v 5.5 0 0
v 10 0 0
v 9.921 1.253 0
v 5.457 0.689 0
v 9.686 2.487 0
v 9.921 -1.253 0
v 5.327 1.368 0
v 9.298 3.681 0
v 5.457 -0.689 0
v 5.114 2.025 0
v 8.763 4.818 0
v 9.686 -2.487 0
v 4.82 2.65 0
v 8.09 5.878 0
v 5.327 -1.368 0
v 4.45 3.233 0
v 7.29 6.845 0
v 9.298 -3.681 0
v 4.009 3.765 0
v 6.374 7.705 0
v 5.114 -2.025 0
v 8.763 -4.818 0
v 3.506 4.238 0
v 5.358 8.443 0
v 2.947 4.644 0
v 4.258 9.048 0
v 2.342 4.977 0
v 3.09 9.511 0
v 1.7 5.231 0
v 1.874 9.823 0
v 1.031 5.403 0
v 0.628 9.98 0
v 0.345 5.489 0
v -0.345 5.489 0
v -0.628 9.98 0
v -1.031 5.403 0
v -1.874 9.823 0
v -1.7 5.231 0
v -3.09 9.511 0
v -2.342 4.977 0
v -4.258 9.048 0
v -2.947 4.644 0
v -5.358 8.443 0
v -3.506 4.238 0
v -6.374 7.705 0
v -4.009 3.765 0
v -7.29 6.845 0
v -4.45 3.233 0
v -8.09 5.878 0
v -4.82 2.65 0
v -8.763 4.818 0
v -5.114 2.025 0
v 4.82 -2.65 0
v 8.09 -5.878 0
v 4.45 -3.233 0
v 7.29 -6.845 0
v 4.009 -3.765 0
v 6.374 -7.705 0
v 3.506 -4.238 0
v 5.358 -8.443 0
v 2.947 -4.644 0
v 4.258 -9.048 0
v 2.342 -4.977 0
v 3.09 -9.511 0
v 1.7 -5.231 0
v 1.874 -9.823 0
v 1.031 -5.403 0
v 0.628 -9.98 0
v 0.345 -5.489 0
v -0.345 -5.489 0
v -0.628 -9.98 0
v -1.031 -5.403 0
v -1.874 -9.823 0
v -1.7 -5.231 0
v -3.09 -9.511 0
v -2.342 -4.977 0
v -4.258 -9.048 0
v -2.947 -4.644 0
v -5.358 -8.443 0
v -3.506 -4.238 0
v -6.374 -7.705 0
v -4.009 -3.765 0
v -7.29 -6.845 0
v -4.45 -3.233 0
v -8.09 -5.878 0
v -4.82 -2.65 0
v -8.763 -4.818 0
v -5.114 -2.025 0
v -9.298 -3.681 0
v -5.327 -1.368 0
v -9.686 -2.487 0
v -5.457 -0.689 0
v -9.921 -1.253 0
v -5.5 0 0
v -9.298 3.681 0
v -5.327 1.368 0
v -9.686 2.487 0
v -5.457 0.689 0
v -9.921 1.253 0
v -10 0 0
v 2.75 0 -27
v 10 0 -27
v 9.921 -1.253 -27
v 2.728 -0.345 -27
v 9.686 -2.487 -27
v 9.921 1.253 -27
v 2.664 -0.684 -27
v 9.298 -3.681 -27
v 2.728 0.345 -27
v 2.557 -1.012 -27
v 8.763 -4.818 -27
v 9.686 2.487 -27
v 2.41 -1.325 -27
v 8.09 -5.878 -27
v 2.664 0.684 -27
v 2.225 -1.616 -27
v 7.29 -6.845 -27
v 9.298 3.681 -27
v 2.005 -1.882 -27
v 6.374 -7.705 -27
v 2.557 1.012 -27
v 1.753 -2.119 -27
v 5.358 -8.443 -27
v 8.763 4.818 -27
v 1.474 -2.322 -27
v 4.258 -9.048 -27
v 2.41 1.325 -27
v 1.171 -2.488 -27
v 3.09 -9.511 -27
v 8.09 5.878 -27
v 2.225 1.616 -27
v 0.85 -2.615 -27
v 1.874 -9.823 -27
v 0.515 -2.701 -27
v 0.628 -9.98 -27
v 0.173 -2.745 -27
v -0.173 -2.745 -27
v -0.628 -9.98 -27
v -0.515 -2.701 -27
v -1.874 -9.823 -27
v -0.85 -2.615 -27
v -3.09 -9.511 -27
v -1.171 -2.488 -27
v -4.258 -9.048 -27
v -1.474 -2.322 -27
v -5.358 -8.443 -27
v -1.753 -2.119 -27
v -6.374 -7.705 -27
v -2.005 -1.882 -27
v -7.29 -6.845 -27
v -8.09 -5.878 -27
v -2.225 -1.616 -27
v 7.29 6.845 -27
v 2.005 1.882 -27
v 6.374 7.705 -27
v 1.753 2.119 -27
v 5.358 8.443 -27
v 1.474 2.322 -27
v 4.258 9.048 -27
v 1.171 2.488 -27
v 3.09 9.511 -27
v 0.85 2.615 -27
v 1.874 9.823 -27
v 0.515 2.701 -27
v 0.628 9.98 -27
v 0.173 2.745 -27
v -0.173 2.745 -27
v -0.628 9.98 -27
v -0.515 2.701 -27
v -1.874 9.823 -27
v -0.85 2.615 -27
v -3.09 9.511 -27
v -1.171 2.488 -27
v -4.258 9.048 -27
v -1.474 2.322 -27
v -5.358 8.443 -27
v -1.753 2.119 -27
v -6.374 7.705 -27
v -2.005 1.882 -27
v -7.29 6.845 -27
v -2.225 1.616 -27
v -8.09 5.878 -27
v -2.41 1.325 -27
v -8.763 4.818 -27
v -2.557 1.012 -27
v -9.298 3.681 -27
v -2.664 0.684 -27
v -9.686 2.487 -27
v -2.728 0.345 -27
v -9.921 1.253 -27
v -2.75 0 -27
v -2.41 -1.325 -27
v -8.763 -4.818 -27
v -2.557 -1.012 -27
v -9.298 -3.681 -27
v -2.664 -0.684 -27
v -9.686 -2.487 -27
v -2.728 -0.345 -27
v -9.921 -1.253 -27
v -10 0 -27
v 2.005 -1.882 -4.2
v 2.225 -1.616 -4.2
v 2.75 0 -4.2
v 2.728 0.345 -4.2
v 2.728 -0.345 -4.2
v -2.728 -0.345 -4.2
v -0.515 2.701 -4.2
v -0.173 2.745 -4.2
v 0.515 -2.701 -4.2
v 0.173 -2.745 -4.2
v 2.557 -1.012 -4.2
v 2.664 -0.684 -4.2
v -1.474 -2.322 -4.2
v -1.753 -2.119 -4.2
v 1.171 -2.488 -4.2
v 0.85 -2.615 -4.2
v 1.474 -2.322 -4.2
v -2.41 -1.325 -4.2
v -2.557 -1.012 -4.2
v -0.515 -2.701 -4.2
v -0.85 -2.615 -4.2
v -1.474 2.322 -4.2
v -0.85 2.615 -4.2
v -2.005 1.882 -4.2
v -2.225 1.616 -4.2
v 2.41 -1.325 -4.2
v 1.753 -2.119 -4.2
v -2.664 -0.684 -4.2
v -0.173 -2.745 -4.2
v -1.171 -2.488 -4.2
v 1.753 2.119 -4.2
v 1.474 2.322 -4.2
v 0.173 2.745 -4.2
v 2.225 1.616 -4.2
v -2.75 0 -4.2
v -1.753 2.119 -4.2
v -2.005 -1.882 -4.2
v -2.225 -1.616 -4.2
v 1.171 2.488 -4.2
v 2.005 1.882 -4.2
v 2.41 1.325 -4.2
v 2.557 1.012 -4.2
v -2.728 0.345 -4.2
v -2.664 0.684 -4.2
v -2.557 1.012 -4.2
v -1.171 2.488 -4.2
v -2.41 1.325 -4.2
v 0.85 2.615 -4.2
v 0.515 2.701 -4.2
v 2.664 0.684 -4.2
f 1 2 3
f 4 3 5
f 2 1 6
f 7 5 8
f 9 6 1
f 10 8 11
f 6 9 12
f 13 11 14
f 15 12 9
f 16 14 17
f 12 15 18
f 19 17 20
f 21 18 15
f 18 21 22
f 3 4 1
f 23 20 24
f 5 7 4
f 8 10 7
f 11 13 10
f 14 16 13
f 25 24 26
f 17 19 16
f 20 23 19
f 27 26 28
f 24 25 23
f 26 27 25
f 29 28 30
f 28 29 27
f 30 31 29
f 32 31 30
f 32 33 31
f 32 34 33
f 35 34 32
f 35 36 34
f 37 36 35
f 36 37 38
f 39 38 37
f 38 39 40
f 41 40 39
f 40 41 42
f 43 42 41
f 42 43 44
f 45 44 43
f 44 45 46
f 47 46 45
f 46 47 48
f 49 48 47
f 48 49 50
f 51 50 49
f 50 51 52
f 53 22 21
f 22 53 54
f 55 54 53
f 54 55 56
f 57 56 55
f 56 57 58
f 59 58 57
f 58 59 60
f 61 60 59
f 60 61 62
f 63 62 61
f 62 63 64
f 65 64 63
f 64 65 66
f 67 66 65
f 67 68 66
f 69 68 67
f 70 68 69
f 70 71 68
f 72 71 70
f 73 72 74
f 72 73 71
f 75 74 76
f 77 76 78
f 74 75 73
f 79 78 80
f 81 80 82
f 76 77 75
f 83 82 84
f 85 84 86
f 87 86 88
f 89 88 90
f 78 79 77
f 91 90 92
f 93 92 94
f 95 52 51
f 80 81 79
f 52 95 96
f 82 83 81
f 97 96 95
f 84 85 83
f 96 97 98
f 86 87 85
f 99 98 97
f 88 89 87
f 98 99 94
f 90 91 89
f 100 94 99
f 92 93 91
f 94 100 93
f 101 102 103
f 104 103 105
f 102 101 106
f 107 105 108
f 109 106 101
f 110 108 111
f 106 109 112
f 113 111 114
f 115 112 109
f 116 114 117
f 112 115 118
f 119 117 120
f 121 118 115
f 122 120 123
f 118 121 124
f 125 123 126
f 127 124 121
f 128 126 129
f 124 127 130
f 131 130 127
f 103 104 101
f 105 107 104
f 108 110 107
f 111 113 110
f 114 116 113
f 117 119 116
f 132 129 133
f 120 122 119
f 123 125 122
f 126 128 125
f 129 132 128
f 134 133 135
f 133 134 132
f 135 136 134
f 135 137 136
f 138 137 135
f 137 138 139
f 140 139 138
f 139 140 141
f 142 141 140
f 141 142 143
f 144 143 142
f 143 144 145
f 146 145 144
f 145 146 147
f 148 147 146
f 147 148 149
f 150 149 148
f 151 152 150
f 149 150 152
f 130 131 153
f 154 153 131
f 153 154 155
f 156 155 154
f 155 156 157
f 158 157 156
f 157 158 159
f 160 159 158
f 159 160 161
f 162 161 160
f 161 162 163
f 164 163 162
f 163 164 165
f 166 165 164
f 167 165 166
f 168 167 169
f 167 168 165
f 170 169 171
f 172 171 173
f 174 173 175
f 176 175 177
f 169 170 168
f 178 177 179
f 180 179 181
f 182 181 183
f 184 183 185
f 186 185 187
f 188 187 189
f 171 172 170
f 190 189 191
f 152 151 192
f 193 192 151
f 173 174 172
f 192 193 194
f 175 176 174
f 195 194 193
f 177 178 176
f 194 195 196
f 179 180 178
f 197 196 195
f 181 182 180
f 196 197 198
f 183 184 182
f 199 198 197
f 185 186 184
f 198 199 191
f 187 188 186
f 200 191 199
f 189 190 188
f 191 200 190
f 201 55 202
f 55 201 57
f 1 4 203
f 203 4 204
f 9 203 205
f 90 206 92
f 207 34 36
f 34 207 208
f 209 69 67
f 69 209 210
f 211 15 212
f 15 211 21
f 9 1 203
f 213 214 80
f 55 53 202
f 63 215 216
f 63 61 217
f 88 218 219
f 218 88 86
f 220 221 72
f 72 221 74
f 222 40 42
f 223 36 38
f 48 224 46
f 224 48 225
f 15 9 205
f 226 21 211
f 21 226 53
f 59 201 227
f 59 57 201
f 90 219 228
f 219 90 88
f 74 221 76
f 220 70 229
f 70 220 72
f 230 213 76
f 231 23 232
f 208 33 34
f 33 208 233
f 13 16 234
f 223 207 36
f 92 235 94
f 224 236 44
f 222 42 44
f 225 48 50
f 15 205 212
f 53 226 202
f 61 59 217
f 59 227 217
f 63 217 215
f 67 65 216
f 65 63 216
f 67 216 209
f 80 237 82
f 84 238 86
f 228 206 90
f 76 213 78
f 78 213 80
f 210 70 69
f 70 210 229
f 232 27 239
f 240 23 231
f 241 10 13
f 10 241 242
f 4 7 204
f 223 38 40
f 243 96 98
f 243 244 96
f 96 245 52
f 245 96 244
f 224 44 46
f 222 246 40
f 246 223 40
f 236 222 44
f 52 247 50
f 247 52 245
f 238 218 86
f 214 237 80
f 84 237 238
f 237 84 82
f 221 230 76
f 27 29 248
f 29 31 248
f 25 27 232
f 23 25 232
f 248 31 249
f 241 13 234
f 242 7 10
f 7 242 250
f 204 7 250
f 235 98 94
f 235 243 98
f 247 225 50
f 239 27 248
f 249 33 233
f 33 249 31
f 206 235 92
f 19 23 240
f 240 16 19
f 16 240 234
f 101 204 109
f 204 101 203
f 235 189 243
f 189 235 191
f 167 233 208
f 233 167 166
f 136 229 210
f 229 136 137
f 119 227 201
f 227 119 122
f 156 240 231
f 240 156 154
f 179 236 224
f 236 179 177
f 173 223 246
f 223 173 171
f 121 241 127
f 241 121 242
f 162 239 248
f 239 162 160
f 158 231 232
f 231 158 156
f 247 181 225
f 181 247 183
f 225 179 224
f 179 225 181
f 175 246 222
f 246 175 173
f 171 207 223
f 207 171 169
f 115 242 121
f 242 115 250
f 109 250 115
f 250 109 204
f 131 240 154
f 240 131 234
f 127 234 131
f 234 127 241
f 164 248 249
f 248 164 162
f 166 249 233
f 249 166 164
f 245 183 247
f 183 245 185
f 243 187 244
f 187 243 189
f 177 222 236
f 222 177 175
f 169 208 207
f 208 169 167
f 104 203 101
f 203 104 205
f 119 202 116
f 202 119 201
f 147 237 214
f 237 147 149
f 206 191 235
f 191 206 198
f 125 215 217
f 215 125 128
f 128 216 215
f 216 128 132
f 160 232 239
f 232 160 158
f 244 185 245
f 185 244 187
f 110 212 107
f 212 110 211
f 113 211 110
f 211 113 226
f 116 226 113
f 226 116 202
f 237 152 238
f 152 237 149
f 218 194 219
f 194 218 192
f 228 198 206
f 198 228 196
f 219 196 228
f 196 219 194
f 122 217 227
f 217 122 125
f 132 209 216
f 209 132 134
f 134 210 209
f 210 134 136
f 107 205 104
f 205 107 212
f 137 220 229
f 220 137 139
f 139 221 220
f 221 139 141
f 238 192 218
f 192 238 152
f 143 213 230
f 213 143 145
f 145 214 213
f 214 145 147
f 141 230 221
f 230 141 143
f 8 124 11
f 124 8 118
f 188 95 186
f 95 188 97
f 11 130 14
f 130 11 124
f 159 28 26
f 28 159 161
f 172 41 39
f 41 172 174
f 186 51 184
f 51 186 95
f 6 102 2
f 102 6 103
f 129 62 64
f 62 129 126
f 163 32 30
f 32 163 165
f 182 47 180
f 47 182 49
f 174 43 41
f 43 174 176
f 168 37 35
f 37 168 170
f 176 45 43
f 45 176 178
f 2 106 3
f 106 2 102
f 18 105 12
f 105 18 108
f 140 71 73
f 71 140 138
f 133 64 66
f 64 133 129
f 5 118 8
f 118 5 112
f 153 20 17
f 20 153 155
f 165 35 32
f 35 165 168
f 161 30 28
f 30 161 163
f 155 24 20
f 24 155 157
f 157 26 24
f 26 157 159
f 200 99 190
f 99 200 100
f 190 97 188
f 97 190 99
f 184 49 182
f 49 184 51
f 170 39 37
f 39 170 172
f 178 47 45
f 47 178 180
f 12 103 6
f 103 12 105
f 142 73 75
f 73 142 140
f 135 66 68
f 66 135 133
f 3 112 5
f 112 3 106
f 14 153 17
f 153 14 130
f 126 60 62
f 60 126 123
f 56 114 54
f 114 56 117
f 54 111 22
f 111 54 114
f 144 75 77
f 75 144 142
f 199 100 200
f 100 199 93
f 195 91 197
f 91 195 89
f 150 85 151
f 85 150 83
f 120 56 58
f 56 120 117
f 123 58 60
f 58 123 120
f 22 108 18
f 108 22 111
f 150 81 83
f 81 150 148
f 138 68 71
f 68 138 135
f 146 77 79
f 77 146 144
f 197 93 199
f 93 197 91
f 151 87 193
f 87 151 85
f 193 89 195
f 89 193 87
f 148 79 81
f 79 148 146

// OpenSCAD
$fn = 50;


difference() {
	union() {
		translate(v = [0, 0, -27.0000000000]) {
			cylinder(h = 27, r = 10.0000000000);
		}
		cylinder(h = 0, r = 13.0000000000);
	}
	union() {
		translate(v = [0, 0, 0]) {
			rotate(a = [0, 0, 0]) {
				difference() {
					union() {
						#translate(v = [0, 0, -27.0000000000]) {
							cylinder(h = 27, r = 2.2500000000);
						}
						#translate(v = [0, 0, -4.2000000000]) {
							cylinder(h = 4.2000000000, r1 = 2.7500000000, r2 = 5.5000000000);
						}
						#translate(v = [0, 0, -27.0000000000]) {
							cylinder(h = 27, r = 2.7500000000);
						}
						#translate(v = [0, 0, -27.0000000000]) {
							cylinder(h = 27, r = 2.2500000000);
						}
					}
					union();
				}
			}
		}
	}
}
